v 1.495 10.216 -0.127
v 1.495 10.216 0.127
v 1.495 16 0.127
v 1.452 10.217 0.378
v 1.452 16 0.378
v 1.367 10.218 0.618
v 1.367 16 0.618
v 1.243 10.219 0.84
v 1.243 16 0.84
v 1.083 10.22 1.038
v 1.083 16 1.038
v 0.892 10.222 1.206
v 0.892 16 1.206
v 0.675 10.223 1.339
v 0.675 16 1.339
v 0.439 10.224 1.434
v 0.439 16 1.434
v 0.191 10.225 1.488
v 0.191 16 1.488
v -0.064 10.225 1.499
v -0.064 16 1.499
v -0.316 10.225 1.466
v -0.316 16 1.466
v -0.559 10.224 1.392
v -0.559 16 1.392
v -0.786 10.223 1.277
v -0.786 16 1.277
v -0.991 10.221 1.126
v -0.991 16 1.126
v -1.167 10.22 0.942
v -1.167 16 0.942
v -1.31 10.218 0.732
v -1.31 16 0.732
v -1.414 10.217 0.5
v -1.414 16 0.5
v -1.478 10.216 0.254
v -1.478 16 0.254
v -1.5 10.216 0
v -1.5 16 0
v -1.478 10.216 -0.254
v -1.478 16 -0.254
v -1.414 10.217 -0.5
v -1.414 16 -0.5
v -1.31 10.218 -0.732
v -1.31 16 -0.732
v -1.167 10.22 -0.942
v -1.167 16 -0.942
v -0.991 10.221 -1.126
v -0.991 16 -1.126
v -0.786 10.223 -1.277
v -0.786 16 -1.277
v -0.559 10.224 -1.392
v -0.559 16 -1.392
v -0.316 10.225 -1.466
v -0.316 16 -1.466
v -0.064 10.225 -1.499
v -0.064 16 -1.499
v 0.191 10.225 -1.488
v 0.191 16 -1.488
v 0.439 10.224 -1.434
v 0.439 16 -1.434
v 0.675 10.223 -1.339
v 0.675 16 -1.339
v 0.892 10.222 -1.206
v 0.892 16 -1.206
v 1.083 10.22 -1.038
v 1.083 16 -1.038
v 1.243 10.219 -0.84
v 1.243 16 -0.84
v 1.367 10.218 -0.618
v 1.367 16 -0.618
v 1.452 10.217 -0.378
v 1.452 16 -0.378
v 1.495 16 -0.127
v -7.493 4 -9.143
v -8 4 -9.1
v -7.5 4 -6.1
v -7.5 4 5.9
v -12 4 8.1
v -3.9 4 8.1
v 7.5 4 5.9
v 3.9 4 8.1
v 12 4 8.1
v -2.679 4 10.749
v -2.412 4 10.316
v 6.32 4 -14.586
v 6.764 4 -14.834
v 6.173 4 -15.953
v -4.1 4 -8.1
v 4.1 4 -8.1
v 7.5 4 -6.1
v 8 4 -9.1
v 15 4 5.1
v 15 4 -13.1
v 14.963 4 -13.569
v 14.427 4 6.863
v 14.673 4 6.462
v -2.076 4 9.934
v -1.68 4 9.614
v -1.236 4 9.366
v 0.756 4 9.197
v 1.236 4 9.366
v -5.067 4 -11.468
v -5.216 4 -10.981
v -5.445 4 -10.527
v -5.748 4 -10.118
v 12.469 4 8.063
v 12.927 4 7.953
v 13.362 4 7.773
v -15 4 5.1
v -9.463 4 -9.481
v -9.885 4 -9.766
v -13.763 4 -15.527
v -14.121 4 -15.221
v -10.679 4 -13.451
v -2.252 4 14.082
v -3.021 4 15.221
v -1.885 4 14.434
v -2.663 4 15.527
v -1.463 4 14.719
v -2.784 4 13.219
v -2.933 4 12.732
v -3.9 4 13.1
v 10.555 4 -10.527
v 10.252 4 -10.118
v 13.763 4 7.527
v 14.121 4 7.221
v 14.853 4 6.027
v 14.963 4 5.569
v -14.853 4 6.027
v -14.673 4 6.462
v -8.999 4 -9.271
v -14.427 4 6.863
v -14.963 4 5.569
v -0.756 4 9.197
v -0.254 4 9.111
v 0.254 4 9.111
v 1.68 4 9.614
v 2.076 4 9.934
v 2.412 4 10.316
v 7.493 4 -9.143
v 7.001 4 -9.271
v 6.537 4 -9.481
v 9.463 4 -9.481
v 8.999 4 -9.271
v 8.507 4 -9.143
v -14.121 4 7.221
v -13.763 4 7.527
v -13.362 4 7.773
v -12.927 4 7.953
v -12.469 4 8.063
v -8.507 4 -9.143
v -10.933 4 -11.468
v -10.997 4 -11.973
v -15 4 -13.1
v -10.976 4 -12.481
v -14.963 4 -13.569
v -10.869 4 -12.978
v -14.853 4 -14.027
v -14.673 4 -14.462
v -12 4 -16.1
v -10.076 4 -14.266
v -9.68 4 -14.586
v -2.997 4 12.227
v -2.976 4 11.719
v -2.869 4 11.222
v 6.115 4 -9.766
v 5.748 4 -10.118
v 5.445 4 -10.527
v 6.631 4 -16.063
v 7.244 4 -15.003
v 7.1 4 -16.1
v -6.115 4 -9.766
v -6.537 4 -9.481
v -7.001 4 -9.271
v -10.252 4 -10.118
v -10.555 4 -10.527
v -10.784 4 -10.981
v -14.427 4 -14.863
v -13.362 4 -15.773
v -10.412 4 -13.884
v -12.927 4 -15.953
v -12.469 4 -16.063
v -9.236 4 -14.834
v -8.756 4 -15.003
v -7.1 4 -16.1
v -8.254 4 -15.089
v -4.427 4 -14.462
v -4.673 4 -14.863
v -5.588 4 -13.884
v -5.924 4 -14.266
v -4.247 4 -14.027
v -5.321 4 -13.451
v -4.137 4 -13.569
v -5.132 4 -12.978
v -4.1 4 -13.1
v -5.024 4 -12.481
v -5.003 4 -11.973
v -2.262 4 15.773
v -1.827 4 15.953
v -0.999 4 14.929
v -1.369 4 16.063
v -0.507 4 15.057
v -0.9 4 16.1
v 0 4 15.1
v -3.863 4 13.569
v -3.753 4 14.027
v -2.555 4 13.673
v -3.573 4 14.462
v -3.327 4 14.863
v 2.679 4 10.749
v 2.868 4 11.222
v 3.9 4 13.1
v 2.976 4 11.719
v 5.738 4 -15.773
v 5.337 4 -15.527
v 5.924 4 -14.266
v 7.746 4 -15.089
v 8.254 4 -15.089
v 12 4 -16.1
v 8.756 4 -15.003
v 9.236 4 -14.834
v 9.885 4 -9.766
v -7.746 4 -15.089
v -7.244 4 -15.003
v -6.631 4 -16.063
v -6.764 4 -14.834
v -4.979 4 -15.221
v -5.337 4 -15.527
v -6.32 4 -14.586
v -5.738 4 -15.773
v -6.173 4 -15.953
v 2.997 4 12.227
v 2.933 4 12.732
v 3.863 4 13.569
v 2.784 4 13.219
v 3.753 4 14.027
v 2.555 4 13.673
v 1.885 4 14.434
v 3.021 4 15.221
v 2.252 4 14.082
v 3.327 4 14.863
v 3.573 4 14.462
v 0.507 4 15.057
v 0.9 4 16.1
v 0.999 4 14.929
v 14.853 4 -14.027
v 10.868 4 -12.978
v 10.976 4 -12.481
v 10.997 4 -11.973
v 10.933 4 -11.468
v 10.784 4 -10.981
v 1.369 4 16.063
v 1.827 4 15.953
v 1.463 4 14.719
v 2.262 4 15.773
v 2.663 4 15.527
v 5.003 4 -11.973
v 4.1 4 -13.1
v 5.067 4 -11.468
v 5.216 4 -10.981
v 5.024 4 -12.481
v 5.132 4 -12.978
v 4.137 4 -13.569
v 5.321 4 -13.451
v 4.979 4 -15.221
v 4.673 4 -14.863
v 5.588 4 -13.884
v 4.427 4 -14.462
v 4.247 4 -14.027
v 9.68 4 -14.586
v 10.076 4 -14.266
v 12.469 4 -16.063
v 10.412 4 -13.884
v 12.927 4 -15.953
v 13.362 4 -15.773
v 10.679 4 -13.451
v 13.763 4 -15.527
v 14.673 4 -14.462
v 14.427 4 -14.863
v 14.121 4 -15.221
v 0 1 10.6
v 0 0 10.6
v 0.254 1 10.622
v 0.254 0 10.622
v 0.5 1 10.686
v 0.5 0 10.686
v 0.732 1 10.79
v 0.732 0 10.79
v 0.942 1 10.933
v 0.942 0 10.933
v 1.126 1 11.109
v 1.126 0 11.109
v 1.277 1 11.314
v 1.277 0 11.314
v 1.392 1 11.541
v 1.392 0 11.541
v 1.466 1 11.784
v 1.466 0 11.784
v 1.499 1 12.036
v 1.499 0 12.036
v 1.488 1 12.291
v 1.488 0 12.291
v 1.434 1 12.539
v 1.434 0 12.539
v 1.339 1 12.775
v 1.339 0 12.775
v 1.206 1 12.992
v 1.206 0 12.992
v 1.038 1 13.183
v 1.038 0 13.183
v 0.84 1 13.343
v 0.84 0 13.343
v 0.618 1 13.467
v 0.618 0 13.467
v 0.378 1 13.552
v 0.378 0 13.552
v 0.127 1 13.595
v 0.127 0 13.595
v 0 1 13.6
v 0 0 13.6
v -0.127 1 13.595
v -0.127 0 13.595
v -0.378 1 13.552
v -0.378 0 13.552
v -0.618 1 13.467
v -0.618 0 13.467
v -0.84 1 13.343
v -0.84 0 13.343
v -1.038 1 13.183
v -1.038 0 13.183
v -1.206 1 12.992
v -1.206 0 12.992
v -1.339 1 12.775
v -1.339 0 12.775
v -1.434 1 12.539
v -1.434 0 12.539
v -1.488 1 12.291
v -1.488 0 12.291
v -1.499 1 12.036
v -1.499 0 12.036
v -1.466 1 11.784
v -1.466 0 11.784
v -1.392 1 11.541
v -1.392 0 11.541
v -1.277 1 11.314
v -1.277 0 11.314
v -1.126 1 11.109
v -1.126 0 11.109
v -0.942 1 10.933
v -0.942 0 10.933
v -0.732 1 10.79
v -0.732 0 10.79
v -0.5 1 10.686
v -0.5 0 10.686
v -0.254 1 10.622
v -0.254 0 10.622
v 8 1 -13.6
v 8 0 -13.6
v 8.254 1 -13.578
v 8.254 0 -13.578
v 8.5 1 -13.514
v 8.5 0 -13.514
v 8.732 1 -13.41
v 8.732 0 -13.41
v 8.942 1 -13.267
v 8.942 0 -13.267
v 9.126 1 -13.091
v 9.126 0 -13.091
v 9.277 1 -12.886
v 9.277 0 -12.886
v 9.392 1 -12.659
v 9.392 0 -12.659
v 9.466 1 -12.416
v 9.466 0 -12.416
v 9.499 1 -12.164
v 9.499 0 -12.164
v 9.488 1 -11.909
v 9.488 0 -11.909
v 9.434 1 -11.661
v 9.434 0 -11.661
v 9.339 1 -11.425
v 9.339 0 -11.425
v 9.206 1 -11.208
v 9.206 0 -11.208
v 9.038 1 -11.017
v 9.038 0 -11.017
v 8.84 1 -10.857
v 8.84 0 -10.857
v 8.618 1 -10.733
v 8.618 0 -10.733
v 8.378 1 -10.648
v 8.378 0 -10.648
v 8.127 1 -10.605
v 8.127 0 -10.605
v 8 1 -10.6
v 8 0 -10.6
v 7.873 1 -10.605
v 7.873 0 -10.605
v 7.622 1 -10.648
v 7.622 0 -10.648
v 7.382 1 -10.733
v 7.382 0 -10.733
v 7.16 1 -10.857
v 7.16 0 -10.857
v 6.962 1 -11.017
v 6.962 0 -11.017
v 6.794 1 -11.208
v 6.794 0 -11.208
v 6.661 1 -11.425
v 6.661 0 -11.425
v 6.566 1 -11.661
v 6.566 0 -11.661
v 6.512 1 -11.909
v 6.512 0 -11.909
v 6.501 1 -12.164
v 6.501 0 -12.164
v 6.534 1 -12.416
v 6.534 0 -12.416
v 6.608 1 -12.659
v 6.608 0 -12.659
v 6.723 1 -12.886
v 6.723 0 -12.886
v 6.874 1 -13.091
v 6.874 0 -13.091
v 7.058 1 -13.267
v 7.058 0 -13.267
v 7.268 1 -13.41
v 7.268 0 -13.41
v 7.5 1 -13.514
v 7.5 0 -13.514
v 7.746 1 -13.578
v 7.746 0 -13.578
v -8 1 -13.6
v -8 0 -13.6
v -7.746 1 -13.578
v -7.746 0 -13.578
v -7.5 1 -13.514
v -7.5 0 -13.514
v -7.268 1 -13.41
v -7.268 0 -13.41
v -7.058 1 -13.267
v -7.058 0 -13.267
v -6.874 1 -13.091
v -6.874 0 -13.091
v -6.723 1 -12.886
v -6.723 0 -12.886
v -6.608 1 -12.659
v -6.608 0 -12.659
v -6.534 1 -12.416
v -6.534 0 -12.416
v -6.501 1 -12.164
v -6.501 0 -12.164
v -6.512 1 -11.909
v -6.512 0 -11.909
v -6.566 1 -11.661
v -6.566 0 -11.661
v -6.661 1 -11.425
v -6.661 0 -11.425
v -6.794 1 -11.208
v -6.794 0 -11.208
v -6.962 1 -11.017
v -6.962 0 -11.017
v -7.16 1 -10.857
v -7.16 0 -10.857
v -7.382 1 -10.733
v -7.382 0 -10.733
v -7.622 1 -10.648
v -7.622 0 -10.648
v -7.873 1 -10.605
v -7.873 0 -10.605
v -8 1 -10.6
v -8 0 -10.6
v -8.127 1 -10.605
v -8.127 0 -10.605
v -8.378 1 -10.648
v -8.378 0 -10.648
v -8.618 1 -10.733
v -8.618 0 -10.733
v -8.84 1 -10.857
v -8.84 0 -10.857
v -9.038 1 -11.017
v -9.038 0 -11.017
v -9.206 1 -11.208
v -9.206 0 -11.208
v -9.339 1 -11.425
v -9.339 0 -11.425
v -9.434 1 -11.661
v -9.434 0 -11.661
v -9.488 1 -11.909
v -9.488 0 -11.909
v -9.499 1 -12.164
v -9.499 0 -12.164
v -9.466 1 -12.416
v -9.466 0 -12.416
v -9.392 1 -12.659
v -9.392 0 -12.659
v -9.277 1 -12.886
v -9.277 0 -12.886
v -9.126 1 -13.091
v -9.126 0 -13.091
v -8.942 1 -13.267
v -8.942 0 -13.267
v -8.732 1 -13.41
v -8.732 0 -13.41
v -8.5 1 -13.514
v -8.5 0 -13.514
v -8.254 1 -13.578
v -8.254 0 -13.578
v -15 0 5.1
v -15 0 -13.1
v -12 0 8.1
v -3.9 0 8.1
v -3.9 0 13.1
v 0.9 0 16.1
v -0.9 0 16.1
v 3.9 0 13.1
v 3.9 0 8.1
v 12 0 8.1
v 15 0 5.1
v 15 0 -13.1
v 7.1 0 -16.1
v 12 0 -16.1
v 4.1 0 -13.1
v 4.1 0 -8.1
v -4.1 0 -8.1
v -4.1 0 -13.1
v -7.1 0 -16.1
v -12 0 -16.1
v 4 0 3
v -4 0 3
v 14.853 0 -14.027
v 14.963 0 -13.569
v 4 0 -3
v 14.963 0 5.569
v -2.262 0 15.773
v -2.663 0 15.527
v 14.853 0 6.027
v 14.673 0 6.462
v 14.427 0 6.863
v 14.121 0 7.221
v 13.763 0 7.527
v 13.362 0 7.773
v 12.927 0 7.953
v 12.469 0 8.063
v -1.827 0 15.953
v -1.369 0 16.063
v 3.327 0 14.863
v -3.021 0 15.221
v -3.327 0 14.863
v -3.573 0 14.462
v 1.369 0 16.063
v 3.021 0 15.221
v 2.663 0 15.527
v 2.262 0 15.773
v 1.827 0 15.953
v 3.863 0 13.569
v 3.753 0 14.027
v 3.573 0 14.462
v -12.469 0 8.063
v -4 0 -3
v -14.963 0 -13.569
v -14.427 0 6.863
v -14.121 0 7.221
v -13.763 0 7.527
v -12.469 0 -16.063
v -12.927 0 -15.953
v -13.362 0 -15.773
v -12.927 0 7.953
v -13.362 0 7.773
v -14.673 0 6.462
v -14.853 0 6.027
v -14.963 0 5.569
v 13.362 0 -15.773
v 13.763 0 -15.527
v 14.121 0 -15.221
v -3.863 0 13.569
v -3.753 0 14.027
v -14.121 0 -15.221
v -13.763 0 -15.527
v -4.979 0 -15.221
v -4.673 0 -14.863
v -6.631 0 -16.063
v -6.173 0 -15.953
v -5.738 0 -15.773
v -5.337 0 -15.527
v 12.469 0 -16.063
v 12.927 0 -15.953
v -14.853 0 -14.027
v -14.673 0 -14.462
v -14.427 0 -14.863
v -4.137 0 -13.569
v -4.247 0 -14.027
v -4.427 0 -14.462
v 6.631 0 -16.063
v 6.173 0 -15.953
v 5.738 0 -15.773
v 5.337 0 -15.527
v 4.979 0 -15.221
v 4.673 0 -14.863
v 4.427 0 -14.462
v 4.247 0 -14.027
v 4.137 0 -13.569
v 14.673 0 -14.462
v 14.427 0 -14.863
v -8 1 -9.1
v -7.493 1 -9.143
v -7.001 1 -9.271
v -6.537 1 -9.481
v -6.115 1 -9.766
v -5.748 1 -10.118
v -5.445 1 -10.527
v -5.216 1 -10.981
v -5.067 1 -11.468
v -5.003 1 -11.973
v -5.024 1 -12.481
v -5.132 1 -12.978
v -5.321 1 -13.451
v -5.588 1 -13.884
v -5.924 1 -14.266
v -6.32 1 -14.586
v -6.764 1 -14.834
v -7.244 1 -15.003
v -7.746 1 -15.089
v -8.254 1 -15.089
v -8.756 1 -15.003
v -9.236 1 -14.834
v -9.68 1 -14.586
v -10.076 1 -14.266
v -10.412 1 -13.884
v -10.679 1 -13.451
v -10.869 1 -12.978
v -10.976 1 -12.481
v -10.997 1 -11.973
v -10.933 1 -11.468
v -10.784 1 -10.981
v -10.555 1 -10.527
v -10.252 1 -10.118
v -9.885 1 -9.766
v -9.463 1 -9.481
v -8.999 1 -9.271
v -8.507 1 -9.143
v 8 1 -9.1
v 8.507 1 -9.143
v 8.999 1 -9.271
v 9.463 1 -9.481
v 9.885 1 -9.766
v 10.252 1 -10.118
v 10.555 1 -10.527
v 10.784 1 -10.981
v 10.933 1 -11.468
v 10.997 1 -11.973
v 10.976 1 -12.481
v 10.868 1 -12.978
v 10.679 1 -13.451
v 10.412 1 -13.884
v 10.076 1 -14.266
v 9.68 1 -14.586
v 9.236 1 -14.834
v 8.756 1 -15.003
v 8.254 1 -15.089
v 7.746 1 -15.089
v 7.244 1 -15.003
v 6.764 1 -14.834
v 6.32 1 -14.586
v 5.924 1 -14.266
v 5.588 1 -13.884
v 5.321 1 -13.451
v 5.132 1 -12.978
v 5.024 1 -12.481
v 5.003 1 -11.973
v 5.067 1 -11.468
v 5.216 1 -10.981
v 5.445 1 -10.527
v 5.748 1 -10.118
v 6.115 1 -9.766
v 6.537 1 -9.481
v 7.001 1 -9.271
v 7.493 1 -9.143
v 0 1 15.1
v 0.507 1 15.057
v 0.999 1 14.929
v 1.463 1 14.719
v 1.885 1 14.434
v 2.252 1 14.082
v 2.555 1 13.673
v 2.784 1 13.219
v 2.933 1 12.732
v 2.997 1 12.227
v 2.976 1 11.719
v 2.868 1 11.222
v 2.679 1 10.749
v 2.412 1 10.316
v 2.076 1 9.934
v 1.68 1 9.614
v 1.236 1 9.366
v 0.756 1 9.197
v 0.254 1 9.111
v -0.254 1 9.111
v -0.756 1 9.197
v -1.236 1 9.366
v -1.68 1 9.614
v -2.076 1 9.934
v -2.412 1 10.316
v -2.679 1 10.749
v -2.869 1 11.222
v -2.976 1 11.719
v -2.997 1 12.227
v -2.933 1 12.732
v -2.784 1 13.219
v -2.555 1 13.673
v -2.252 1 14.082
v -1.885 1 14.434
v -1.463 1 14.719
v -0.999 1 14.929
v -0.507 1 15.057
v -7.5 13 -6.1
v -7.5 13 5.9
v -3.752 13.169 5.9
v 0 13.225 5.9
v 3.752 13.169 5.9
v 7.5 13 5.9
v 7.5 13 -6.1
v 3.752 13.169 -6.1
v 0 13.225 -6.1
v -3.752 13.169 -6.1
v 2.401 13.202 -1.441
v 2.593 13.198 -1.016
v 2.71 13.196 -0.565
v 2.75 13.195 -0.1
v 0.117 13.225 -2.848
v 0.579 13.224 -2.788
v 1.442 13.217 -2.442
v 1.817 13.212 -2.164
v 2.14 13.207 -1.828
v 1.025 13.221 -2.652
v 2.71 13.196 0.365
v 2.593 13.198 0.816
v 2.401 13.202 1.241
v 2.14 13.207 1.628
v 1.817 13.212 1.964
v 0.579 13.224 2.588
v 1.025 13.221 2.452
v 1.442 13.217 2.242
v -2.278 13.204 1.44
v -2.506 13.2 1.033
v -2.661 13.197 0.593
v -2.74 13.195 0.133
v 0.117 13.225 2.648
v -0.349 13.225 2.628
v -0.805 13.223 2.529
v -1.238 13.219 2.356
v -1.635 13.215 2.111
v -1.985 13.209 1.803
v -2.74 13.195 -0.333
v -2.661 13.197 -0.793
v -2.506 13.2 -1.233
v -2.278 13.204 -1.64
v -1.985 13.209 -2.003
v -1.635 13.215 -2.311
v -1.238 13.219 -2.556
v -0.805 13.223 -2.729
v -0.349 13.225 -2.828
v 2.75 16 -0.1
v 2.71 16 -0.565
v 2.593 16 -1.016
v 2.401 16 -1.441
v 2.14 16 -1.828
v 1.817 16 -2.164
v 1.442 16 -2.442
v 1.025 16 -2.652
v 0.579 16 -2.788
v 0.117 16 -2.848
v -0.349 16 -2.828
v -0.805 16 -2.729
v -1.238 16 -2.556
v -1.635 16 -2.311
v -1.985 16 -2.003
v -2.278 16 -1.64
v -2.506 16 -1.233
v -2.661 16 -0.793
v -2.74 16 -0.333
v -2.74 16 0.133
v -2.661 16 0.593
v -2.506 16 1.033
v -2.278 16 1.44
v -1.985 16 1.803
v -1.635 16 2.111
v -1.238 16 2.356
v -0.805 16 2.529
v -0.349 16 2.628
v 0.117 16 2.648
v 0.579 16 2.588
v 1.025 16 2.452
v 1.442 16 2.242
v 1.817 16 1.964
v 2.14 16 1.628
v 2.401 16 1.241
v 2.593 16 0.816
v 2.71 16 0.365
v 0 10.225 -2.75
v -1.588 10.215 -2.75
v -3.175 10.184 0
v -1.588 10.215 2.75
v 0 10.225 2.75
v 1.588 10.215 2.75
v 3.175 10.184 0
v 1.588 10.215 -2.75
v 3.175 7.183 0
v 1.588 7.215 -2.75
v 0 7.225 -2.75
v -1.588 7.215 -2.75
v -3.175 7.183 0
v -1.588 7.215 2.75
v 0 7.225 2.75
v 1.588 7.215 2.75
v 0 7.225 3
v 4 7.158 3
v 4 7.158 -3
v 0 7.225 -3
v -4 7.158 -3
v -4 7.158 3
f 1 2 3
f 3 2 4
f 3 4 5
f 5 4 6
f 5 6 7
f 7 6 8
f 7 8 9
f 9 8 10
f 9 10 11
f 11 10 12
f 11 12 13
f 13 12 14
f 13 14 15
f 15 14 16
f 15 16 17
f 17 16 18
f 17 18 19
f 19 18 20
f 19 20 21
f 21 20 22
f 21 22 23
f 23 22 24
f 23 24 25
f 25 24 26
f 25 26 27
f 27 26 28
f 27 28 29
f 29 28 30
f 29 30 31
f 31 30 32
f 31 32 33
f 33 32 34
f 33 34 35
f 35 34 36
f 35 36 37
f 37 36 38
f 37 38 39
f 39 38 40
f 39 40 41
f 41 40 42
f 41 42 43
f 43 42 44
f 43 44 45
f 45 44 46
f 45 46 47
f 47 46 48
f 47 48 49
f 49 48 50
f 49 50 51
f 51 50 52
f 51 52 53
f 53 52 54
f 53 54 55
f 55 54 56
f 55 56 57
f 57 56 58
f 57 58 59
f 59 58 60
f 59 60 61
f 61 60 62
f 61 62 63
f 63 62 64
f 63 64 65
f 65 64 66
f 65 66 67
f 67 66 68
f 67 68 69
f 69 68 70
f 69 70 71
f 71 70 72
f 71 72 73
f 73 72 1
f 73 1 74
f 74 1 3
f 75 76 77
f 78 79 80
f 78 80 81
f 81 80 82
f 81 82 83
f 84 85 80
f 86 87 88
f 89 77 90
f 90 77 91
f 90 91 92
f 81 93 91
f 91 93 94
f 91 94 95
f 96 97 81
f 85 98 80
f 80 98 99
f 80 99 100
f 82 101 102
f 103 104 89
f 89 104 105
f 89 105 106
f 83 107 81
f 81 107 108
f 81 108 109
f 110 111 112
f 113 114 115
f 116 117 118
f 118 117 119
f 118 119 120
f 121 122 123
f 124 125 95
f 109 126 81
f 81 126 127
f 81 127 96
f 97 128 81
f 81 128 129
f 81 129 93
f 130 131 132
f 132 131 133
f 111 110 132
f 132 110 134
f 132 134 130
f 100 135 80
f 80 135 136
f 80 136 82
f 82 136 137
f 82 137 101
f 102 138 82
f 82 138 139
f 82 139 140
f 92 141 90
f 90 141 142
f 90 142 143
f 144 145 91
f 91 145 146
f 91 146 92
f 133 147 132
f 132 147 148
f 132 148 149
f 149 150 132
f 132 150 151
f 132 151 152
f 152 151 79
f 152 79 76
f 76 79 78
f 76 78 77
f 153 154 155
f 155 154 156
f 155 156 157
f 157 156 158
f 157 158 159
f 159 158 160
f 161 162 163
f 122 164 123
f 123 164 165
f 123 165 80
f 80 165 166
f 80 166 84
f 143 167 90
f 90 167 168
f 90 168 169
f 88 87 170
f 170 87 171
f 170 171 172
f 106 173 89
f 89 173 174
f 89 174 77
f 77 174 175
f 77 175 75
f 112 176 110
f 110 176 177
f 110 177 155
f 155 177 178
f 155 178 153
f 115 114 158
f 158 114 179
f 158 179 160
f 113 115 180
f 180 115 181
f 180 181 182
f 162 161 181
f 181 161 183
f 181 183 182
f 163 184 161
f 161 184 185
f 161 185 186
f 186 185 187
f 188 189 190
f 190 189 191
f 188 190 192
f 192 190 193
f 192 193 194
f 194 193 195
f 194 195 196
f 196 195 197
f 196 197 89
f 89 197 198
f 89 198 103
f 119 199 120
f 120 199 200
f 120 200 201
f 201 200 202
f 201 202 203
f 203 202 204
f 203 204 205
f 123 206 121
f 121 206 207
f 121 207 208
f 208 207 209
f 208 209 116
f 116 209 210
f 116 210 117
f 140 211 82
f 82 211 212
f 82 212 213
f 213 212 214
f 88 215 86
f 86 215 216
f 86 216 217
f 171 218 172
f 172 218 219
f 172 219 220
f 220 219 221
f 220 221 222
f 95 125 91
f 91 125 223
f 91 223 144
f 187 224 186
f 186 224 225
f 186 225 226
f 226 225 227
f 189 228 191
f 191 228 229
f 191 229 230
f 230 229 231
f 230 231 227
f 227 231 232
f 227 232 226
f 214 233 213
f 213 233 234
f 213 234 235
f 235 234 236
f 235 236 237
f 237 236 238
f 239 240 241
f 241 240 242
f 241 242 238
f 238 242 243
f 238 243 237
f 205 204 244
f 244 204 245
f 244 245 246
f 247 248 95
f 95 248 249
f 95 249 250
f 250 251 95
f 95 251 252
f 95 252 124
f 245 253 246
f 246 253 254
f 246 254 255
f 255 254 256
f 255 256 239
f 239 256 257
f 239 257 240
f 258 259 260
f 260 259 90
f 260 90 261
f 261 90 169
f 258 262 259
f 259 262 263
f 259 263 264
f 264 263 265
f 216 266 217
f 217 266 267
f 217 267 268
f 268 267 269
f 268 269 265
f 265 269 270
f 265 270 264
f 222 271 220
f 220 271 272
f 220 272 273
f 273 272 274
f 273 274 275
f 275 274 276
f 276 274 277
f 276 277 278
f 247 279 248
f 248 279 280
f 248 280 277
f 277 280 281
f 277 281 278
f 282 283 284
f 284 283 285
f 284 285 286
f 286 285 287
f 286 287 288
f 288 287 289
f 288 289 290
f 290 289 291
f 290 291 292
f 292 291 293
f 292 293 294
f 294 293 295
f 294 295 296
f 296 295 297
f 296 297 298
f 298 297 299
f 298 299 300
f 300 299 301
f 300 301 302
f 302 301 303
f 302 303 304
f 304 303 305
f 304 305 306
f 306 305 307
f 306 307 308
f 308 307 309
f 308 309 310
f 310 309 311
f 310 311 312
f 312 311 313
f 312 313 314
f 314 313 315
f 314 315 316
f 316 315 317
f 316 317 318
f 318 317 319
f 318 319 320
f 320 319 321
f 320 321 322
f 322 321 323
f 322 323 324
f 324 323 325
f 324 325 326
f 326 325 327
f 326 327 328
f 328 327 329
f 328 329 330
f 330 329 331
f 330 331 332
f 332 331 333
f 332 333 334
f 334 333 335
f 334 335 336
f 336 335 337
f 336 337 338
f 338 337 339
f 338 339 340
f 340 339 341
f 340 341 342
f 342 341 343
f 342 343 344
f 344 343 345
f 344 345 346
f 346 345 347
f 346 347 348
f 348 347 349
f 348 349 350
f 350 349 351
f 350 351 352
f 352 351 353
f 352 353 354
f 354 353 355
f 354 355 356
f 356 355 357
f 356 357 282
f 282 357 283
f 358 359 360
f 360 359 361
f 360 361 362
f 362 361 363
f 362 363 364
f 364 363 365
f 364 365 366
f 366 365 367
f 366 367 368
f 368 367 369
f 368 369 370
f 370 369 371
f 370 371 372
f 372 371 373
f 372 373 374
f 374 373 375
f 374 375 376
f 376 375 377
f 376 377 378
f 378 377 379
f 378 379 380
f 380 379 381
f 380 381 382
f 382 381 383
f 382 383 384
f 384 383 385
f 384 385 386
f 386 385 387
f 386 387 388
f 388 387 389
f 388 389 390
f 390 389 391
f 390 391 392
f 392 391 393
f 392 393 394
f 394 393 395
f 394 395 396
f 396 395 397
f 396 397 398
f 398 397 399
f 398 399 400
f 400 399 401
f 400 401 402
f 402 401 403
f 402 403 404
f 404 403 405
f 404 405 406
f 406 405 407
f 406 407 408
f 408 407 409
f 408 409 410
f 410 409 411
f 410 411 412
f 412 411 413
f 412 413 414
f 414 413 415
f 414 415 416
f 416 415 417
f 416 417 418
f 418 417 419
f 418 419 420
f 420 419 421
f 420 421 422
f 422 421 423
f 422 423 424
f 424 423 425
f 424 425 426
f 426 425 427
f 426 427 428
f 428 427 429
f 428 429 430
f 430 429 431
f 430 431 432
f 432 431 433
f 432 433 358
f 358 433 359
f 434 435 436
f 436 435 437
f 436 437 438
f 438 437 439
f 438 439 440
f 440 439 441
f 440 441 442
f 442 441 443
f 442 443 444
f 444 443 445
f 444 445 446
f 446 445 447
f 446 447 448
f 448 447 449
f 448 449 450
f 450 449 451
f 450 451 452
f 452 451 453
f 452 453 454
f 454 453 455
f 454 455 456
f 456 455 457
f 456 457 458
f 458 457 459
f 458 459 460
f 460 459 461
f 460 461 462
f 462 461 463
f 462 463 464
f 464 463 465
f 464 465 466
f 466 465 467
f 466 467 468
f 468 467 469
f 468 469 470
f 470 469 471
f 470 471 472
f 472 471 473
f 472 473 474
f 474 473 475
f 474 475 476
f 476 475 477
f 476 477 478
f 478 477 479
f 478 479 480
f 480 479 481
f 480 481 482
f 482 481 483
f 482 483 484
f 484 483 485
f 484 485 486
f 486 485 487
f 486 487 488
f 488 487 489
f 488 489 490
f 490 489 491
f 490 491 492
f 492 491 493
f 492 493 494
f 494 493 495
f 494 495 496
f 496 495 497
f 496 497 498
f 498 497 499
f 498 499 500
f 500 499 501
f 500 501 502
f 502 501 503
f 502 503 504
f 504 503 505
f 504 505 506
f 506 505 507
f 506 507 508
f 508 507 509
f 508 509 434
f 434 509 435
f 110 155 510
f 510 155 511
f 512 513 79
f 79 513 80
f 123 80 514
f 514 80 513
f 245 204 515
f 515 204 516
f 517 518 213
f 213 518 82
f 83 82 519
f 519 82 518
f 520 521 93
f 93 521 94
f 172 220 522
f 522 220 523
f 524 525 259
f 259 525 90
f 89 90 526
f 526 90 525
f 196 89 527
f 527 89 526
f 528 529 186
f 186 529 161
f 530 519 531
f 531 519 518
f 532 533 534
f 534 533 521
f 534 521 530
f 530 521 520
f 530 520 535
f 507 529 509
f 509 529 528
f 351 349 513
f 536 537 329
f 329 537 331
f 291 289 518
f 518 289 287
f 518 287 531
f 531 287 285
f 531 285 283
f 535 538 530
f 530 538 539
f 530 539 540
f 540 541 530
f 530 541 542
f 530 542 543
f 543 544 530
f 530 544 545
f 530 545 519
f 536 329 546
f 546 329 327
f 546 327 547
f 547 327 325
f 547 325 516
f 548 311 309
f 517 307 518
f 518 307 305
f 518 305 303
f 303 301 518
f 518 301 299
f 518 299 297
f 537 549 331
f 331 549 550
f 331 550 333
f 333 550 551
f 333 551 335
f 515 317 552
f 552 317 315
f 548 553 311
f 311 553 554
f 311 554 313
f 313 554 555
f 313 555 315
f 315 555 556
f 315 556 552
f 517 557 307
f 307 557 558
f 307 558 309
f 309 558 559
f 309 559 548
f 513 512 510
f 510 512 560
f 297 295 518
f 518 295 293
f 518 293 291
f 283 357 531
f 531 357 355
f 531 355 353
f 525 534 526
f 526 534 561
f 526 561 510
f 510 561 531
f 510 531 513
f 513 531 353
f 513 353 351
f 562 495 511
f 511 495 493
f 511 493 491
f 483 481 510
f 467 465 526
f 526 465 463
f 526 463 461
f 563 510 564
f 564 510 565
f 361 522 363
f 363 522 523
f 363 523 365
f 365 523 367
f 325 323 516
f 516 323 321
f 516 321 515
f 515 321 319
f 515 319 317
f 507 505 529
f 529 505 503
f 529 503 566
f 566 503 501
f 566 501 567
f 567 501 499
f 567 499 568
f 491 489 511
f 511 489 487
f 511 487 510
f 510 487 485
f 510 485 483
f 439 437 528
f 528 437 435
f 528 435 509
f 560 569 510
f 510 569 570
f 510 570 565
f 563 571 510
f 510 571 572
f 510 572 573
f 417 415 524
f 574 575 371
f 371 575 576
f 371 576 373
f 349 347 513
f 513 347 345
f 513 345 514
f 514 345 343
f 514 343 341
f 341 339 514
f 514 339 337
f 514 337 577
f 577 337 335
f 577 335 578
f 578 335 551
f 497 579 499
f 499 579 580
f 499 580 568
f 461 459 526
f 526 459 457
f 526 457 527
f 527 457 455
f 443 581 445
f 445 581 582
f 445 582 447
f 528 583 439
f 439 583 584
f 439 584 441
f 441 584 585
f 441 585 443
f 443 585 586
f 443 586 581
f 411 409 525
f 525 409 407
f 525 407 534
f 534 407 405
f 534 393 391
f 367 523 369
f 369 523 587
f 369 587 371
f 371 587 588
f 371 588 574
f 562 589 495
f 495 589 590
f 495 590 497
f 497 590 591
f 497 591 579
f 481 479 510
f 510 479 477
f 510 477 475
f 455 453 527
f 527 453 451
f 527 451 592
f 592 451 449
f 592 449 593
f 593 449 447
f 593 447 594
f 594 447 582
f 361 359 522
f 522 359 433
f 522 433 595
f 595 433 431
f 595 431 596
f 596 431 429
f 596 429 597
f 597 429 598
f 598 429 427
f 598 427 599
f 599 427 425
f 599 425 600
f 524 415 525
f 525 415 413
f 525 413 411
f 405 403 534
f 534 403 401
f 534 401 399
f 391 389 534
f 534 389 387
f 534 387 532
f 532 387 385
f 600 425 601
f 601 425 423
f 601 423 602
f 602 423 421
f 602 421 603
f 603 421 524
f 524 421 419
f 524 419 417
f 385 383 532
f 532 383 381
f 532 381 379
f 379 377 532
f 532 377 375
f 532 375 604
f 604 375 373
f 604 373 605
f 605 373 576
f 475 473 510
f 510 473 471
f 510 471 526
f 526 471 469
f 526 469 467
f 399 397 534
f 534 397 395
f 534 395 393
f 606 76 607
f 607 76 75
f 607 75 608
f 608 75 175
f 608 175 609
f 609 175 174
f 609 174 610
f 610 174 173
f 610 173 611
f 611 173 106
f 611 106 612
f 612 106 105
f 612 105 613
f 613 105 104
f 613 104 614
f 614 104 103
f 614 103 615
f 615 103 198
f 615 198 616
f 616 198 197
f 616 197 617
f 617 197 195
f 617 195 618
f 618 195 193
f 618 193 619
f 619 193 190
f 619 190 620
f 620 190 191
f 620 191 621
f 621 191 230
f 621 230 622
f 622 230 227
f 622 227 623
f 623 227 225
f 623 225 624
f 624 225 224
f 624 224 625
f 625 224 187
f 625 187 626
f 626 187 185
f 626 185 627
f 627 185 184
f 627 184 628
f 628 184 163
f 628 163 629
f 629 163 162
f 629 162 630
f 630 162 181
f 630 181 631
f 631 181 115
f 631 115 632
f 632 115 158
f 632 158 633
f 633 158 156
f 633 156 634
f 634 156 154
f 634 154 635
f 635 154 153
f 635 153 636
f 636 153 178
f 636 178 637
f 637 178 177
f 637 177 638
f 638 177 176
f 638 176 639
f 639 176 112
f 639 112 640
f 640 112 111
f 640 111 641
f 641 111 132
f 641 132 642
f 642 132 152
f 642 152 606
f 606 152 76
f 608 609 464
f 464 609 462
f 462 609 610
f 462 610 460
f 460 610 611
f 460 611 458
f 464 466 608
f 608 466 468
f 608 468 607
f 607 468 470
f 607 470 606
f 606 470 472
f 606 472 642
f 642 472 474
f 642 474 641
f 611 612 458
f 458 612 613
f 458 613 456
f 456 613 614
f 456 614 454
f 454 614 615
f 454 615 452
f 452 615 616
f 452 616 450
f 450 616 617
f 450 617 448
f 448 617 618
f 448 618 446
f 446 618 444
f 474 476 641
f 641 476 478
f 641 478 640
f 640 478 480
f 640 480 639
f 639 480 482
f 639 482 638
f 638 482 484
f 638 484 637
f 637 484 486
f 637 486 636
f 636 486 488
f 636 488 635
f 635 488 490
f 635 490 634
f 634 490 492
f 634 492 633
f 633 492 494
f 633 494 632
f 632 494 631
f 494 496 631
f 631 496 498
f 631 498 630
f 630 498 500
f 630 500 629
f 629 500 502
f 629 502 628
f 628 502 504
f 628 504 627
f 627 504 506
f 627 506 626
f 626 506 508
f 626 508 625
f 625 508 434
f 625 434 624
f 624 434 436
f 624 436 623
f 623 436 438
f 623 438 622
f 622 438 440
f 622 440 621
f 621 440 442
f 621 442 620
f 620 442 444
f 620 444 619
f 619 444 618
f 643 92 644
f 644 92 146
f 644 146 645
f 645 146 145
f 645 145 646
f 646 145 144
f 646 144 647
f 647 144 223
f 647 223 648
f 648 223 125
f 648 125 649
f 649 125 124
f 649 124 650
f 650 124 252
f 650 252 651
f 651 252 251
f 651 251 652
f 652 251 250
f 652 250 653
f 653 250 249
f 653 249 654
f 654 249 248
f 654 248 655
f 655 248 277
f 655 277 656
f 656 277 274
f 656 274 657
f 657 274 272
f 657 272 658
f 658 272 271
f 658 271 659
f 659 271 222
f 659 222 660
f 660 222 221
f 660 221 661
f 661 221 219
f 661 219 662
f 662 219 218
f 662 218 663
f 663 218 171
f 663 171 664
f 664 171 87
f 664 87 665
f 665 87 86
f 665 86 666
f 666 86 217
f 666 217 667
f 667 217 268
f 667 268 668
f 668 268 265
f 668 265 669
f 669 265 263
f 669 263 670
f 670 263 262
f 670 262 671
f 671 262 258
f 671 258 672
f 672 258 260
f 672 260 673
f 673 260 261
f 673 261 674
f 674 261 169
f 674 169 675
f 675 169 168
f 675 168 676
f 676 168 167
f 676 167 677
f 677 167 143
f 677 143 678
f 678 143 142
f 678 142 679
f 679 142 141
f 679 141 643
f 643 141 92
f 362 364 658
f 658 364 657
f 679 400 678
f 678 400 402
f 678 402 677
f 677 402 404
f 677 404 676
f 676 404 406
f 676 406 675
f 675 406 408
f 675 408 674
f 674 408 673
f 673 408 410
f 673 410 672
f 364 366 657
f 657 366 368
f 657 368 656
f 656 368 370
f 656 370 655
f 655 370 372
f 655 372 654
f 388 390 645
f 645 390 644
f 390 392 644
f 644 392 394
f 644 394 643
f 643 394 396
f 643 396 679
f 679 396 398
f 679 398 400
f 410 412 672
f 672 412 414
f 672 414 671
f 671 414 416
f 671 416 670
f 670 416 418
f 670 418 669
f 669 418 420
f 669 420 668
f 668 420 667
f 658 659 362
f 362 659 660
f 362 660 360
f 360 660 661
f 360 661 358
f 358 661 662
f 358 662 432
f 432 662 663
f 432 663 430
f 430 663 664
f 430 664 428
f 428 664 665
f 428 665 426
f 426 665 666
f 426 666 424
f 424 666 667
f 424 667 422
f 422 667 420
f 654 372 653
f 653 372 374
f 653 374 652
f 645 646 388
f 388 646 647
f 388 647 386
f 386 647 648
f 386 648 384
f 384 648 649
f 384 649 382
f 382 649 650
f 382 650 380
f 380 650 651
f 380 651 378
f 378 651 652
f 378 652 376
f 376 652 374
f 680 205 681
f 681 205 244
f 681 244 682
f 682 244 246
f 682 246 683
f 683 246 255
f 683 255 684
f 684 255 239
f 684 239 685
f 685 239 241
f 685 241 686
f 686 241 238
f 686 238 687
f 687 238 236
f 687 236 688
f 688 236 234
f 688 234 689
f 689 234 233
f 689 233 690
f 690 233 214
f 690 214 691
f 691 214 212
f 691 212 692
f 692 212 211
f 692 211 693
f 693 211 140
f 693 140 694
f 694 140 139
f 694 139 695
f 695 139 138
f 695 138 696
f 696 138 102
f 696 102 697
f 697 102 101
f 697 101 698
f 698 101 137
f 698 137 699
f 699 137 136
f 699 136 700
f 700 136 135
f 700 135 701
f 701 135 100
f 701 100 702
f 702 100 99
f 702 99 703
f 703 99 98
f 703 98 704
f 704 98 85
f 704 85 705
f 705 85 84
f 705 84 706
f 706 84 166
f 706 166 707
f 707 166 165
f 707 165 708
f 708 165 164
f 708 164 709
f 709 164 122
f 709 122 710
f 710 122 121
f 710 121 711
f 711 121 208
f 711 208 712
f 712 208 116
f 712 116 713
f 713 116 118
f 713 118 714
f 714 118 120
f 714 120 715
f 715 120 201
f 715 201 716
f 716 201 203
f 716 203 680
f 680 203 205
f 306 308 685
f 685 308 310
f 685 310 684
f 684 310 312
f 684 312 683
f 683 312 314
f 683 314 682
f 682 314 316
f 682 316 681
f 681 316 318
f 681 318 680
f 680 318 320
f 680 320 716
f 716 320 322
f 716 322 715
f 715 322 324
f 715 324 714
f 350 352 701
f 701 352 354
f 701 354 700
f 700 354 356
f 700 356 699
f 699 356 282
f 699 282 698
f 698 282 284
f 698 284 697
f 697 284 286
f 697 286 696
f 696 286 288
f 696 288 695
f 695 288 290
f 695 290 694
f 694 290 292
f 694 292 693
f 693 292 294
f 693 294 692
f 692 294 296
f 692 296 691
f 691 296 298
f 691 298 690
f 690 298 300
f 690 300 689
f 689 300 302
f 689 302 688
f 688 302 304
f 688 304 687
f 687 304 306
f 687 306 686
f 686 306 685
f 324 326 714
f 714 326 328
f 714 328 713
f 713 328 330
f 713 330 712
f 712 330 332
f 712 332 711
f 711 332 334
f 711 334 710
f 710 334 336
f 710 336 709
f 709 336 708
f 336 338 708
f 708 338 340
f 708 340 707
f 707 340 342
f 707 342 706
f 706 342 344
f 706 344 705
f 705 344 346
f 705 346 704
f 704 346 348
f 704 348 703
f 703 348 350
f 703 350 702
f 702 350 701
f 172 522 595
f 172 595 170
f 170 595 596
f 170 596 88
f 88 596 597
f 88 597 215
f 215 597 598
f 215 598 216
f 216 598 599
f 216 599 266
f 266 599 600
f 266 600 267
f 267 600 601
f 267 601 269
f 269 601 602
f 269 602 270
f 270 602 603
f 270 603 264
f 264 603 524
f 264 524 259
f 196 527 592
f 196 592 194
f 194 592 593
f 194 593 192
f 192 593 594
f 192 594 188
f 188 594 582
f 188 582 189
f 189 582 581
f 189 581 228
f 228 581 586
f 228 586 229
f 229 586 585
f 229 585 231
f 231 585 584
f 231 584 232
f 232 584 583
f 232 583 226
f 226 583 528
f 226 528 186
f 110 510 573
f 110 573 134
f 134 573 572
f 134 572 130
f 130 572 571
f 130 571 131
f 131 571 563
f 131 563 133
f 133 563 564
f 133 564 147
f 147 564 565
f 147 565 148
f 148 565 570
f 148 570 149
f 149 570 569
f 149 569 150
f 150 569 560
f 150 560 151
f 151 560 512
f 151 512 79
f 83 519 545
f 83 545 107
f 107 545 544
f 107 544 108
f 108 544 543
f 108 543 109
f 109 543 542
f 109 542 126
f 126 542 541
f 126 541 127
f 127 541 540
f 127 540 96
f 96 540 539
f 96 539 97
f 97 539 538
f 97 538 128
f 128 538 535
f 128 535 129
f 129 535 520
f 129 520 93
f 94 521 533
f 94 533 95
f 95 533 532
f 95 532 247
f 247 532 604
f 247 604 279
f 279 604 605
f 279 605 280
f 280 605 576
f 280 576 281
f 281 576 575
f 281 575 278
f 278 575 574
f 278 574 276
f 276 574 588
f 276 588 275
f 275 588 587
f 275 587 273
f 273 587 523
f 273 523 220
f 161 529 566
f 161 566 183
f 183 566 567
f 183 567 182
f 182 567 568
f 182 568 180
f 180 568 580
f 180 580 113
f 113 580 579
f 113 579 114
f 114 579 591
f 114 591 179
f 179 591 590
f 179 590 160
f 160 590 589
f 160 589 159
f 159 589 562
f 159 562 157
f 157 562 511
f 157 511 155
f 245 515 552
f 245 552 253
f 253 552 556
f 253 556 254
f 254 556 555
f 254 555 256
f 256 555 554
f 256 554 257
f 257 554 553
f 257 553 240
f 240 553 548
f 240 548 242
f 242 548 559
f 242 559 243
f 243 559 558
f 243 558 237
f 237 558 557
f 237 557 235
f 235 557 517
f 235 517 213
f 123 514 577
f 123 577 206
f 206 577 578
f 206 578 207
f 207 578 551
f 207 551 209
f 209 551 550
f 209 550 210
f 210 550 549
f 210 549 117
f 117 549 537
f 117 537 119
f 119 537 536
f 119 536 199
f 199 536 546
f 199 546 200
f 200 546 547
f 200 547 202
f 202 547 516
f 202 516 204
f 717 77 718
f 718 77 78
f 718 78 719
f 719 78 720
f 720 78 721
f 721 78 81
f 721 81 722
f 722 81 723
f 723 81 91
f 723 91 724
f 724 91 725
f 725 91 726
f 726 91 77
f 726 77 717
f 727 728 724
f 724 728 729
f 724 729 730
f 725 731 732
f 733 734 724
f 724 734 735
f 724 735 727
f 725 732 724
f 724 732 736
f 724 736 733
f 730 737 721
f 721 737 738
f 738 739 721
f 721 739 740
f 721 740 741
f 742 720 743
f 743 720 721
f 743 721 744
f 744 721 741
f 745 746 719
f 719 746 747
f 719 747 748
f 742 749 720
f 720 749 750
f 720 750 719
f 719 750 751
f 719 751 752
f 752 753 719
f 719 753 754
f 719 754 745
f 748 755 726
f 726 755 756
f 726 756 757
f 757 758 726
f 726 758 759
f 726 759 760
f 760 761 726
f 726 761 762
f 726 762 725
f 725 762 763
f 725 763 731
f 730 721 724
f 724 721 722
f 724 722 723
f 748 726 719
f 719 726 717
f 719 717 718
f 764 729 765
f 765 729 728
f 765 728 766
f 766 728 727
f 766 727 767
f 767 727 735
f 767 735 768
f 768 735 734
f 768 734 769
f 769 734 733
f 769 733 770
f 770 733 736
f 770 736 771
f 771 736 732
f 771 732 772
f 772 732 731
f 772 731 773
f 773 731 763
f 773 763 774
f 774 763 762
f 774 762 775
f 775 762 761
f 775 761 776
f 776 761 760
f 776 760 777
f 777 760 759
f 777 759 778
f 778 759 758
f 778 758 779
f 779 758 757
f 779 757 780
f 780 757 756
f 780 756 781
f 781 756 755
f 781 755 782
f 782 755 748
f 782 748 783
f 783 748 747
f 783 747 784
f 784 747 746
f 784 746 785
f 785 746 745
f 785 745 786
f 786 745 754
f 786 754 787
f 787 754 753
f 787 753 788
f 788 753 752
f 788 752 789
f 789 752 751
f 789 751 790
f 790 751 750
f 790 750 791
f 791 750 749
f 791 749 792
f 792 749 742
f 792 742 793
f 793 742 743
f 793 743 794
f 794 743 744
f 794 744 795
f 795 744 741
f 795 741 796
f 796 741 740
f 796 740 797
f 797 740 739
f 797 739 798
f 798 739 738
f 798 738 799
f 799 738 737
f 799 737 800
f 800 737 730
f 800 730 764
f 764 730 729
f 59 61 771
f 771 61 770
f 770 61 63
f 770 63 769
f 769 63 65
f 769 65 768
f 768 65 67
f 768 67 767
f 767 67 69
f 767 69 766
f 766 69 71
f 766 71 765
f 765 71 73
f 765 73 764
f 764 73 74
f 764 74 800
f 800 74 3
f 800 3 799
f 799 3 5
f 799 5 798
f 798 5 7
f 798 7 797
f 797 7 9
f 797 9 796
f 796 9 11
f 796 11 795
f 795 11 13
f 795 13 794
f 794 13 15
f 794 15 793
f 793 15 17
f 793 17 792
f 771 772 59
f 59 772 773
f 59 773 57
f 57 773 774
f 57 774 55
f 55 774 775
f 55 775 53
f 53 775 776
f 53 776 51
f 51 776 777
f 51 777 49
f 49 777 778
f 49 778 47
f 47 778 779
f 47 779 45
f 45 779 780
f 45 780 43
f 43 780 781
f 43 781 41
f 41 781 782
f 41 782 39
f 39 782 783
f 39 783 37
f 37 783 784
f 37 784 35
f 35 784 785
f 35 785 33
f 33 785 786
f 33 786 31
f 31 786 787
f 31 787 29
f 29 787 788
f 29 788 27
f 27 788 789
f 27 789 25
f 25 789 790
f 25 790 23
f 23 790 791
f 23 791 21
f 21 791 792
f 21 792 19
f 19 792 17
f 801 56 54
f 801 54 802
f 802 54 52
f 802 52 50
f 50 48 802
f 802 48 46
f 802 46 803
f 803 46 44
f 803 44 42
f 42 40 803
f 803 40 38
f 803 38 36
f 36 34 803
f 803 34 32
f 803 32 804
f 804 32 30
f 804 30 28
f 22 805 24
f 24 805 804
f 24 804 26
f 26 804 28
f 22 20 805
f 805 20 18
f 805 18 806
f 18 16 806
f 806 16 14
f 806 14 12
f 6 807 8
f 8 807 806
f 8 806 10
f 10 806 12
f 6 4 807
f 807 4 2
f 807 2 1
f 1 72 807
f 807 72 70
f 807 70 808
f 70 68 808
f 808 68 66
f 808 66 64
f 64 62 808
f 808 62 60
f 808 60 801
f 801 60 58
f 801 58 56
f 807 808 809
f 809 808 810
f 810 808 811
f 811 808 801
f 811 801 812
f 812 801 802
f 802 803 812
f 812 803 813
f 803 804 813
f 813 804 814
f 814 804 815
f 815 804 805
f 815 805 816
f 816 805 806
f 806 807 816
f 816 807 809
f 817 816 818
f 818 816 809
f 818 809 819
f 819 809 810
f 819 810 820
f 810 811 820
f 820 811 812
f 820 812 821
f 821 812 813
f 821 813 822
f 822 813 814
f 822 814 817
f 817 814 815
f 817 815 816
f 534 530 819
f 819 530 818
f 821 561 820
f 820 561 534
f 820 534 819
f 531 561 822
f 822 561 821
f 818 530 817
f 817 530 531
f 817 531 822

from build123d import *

# Parameters (mm, degrees)
EXTRUDE_1_DEPTH           = 4
SKETCH_2_R                = 1.5
CUT_EXTRUDE_2_DEPTH       = 23.365375025
SKETCH_3_R                = 3
CUT_EXTRUDE_3_DEPTH       = 3
FILLET_1_R                = 3
SKETCH_4_W                = 15
SKETCH_4_H                = 12
EXTRUDE_2_DEPTH           = 10
CUT_EXTRUDE_7_DEPTH       = 31.229786635
SKETCH_9_R                = 2.75
EXTRUDE_3_DEPTH           = 3
SKETCH_10_R               = 1.5
CUT_EXTRUDE_8_DEPTH       = 28.20680062
CUT_EXTRUDE_9_REACH       = 29.207
CUT_EXTRUDE_9_END_RADIUS  = 122
CUT_EXTRUDE_13_REACH      = 29.207
CUT_EXTRUDE_13_END_RADIUS = 119
SKETCH_12_W               = 8
SKETCH_12_H               = 6


with BuildPart() as part:
    # 草图1 → 凸台-拉伸1 (new body)
    with BuildSketch(Plane(origin=(0, 0, 0), x_dir=(1, 0, 0), z_dir=(0, 1, 0))):
        Polygon((-15, 16.1), (-4.1, 16.1), (-4.1, 8.1), (4.1, 8.1), (4.1, 16.1), (15, 16.1), (15, -8.1), (3.9, -8.1), (3.9, -16.1), (-3.9, -16.1), (-3.9, -8.1), (-15, -8.1), align=None)
    extrude(amount=EXTRUDE_1_DEPTH)

    # 草图2 → 切除-拉伸2 (cut, through all)
    with BuildSketch(Plane(origin=(0, 0, 0), x_dir=(1, 0, 0), z_dir=(0, 1, 0))):
        with Locations(Location((-8, 12.1, 0), (0, 0, 270))):
            Circle(SKETCH_2_R)
        with Locations(Location((8, 12.1, 0), (0, 0, 270))):
            Circle(SKETCH_2_R)
        with Locations(Location((0, -12.1, 0), (0, 0, 270))):
            Circle(SKETCH_2_R)
    extrude(amount=CUT_EXTRUDE_2_DEPTH, mode=Mode.SUBTRACT)

    # 草图3 → 切除-拉伸3 (cut)
    with BuildSketch(Plane(origin=(0, 4, 0), x_dir=(1, 0, 0), z_dir=(0, 1, 0))):
        with Locations(Location((-8, 12.1, 0), (0, 0, 270))):
            Circle(SKETCH_3_R)
        with Locations(Location((8, 12.1, 0), (0, 0, 270))):
            Circle(SKETCH_3_R)
        with Locations(Location((0, -12.1, 0), (0, 0, 270))):
            Circle(SKETCH_3_R)
    extrude(amount=-CUT_EXTRUDE_3_DEPTH, mode=Mode.SUBTRACT)

    # 圆角1
    fillet_1_edges = [part.edges().sort_by_distance(p)[0] for p in [
        (-15, 2, -16.1),
        (-4.1, 2, -16.1),
        (4.1, 2, -16.1),
        (15, 2, -16.1),
        (15, 2, 8.1),
        (3.9, 2, 16.1),
        (-3.9, 2, 16.1),
        (-15, 2, 8.1),
    ]]
    fillet(fillet_1_edges, radius=FILLET_1_R)

    # 草图4 → 凸台-拉伸2 (add)
    with BuildSketch(Plane(origin=(0, 4, 0), x_dir=(1, 0, 0), z_dir=(0, 1, 0))):
        with Locations((0, 0.1)):
            Rectangle(SKETCH_4_W, SKETCH_4_H)
    extrude(amount=EXTRUDE_2_DEPTH)

    # 草图8 → 切除-拉伸7 (cut, through all)
    with BuildSketch(Plane(origin=(0, 0, -6.1), x_dir=(-1, 0, 0), z_dir=(0, 0, -1))):
        with BuildLine():
            Line((-7.5, 13), (-7.5, 14))
            Line((-7.5, 14), (7.5, 14))
            Line((7.5, 14), (7.5, 13))
            ThreePointArc((7.5, 13), (0, 13.225202865), (-7.5, 13))
        make_face()
    extrude(amount=-CUT_EXTRUDE_7_DEPTH, mode=Mode.SUBTRACT)

    # 草图9 → 凸台-拉伸3 (add)
    with BuildSketch(Plane(origin=(0, 13, 0), x_dir=(-1, 0, 0), z_dir=(0, -1, 0))):
        with Locations(Location((0, 0.1, 0), (0, 0, 180))):
            Circle(SKETCH_9_R)
    extrude(amount=-EXTRUDE_3_DEPTH)

    # 草图10 → 切除-拉伸8 (cut, through all)
    with BuildSketch(Plane(origin=(0, 16, 0), x_dir=(1, 0, 0), z_dir=(0, 1, 0))):
        with Locations(Location((0, 0, 0), (0, 0, 180))):
            Circle(SKETCH_10_R)
    extrude(amount=-CUT_EXTRUDE_8_DEPTH, mode=Mode.SUBTRACT)

    # 切除-拉伸9: up to this cylinder (the profile starts inside it)
    cut_extrude_9_end = Plane(origin=(0, -111.774797135, 0), z_dir=(0, 0, -1)) * Cylinder(CUT_EXTRUDE_9_END_RADIUS, 303.414, mode=Mode.PRIVATE)
    # 草图11 → 切除-拉伸9 (cut, up to the surface)
    with BuildSketch(Plane.XZ, mode=Mode.PRIVATE) as cut_extrude_9_sk1:
        Polygon((3.175426481, 0), (1.58771324, 2.75), (-1.58771324, 2.75), (-3.175426481, 0), (-1.58771324, -2.75), (1.58771324, -2.75), align=None)
    cut_extrude_9_tool1 = extrude(cut_extrude_9_sk1.sketch, amount=-CUT_EXTRUDE_9_REACH, mode=Mode.PRIVATE) & cut_extrude_9_end
    add(cut_extrude_9_tool1.solids().sort_by_distance((0, 0, 0))[0], mode=Mode.SUBTRACT)

    # 切除-拉伸13: up to this cylinder (the profile starts inside it)
    cut_extrude_13_end = Plane(origin=(0, -111.774797135, 0), z_dir=(0, 0, -1)) * Cylinder(CUT_EXTRUDE_13_END_RADIUS, 297.414, mode=Mode.PRIVATE)
    # 草图12 → 切除-拉伸13 (cut, up to the surface)
    with BuildSketch(Plane.XZ, mode=Mode.PRIVATE) as cut_extrude_13_sk1:
        Rectangle(SKETCH_12_W, SKETCH_12_H)
    cut_extrude_13_tool1 = extrude(cut_extrude_13_sk1.sketch, amount=-CUT_EXTRUDE_13_REACH, mode=Mode.PRIVATE) & cut_extrude_13_end
    add(cut_extrude_13_tool1.solids().sort_by_distance((0, 0, 0))[0], mode=Mode.SUBTRACT)


solid = part.part
